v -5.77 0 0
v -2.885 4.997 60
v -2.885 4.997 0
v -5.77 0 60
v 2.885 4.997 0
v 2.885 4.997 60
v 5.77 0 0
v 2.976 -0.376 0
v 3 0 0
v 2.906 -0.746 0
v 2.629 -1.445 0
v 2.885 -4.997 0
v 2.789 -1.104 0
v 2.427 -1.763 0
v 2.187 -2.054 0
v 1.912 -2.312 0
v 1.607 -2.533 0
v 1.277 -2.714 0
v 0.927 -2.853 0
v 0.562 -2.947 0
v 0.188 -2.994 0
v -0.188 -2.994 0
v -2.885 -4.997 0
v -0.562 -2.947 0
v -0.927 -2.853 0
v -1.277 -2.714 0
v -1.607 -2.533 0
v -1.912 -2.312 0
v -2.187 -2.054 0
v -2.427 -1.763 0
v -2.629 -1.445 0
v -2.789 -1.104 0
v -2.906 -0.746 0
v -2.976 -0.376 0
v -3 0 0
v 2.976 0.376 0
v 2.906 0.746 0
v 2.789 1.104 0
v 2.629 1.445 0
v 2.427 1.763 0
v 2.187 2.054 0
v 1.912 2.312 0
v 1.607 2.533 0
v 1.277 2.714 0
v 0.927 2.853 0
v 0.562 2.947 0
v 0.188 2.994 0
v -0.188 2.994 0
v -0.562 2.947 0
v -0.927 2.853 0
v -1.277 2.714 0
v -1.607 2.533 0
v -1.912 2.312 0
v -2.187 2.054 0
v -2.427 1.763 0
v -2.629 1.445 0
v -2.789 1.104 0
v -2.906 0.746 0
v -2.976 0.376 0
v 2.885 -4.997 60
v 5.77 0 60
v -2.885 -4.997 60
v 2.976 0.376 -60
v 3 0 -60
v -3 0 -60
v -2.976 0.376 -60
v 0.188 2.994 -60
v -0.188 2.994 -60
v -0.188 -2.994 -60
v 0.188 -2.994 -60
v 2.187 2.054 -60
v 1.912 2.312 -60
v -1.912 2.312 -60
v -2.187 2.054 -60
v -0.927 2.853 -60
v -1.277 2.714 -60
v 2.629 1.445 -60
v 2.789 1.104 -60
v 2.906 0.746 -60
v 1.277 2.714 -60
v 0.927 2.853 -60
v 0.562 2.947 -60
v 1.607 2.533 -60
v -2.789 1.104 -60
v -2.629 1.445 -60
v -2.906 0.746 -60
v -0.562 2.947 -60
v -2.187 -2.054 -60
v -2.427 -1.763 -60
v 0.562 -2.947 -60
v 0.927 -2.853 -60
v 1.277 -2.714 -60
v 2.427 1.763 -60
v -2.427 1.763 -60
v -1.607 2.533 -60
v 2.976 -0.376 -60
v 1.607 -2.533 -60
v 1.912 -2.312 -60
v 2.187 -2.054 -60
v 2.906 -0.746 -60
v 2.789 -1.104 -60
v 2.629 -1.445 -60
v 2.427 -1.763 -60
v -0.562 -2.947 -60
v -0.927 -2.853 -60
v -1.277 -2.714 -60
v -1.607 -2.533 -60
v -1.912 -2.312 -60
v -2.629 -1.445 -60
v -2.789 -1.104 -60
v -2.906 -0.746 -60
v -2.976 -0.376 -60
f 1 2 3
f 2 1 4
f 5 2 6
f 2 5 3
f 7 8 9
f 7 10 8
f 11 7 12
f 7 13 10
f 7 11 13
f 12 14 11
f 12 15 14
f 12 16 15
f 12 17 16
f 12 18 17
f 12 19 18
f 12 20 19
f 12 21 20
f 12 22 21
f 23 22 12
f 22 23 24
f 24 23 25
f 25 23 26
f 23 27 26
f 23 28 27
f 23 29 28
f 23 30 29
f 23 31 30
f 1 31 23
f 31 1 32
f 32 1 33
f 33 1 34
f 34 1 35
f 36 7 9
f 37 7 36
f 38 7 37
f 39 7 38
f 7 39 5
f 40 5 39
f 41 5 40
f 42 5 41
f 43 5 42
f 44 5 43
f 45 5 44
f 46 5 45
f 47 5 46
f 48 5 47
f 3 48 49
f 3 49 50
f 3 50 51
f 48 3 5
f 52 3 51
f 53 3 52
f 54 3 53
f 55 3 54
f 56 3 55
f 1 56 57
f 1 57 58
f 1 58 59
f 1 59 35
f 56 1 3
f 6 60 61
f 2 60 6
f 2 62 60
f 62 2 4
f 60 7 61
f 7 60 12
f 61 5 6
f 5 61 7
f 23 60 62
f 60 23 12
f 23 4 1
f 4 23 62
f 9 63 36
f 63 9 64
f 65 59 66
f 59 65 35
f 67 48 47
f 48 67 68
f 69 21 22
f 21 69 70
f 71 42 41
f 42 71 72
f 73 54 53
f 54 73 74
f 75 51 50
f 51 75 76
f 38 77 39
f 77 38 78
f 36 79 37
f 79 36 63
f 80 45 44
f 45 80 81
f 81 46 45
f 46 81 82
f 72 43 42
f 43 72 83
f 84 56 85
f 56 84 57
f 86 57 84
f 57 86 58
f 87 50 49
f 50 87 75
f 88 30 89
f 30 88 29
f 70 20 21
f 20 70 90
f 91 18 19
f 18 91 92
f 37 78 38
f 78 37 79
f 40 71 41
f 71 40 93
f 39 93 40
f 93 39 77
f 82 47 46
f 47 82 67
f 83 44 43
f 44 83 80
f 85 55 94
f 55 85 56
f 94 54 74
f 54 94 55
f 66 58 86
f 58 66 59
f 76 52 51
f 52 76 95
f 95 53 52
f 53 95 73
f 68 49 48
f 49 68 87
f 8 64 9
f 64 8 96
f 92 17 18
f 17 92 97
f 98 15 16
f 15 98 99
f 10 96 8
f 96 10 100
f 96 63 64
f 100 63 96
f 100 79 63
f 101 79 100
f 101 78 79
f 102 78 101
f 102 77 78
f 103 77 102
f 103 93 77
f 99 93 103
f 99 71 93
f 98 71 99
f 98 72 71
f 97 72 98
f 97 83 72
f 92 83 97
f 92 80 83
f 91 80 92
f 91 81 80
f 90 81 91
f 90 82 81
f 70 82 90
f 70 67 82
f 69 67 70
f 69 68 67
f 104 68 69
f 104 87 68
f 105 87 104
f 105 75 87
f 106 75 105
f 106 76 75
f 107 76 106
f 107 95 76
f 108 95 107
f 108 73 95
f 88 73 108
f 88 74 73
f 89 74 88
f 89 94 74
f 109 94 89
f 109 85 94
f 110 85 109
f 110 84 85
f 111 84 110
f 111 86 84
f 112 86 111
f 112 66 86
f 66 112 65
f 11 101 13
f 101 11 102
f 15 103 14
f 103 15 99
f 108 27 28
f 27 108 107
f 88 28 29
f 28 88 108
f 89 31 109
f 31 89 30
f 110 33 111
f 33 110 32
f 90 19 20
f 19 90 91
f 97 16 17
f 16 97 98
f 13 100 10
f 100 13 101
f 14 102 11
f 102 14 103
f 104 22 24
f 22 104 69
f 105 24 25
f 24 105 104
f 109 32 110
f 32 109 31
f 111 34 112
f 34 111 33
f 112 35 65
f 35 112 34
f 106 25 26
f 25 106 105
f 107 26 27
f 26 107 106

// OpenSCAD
$fn = 50;


difference() {
	union() {
		linear_extrude(height = 60) {
			polygon(points = [[5.7700000000, 0.0000000000], [2.8850000000, 4.9969665798], [-2.8850000000, 4.9969665798], [-5.7700000000, 0.0000000000], [-2.8850000000, -4.9969665798], [2.8850000000, -4.9969665798]]);
		}
		translate(v = [0, 0, -60]) {
			cylinder(h = 60, r = 3.0000000000);
		}
	}
	union();
}
